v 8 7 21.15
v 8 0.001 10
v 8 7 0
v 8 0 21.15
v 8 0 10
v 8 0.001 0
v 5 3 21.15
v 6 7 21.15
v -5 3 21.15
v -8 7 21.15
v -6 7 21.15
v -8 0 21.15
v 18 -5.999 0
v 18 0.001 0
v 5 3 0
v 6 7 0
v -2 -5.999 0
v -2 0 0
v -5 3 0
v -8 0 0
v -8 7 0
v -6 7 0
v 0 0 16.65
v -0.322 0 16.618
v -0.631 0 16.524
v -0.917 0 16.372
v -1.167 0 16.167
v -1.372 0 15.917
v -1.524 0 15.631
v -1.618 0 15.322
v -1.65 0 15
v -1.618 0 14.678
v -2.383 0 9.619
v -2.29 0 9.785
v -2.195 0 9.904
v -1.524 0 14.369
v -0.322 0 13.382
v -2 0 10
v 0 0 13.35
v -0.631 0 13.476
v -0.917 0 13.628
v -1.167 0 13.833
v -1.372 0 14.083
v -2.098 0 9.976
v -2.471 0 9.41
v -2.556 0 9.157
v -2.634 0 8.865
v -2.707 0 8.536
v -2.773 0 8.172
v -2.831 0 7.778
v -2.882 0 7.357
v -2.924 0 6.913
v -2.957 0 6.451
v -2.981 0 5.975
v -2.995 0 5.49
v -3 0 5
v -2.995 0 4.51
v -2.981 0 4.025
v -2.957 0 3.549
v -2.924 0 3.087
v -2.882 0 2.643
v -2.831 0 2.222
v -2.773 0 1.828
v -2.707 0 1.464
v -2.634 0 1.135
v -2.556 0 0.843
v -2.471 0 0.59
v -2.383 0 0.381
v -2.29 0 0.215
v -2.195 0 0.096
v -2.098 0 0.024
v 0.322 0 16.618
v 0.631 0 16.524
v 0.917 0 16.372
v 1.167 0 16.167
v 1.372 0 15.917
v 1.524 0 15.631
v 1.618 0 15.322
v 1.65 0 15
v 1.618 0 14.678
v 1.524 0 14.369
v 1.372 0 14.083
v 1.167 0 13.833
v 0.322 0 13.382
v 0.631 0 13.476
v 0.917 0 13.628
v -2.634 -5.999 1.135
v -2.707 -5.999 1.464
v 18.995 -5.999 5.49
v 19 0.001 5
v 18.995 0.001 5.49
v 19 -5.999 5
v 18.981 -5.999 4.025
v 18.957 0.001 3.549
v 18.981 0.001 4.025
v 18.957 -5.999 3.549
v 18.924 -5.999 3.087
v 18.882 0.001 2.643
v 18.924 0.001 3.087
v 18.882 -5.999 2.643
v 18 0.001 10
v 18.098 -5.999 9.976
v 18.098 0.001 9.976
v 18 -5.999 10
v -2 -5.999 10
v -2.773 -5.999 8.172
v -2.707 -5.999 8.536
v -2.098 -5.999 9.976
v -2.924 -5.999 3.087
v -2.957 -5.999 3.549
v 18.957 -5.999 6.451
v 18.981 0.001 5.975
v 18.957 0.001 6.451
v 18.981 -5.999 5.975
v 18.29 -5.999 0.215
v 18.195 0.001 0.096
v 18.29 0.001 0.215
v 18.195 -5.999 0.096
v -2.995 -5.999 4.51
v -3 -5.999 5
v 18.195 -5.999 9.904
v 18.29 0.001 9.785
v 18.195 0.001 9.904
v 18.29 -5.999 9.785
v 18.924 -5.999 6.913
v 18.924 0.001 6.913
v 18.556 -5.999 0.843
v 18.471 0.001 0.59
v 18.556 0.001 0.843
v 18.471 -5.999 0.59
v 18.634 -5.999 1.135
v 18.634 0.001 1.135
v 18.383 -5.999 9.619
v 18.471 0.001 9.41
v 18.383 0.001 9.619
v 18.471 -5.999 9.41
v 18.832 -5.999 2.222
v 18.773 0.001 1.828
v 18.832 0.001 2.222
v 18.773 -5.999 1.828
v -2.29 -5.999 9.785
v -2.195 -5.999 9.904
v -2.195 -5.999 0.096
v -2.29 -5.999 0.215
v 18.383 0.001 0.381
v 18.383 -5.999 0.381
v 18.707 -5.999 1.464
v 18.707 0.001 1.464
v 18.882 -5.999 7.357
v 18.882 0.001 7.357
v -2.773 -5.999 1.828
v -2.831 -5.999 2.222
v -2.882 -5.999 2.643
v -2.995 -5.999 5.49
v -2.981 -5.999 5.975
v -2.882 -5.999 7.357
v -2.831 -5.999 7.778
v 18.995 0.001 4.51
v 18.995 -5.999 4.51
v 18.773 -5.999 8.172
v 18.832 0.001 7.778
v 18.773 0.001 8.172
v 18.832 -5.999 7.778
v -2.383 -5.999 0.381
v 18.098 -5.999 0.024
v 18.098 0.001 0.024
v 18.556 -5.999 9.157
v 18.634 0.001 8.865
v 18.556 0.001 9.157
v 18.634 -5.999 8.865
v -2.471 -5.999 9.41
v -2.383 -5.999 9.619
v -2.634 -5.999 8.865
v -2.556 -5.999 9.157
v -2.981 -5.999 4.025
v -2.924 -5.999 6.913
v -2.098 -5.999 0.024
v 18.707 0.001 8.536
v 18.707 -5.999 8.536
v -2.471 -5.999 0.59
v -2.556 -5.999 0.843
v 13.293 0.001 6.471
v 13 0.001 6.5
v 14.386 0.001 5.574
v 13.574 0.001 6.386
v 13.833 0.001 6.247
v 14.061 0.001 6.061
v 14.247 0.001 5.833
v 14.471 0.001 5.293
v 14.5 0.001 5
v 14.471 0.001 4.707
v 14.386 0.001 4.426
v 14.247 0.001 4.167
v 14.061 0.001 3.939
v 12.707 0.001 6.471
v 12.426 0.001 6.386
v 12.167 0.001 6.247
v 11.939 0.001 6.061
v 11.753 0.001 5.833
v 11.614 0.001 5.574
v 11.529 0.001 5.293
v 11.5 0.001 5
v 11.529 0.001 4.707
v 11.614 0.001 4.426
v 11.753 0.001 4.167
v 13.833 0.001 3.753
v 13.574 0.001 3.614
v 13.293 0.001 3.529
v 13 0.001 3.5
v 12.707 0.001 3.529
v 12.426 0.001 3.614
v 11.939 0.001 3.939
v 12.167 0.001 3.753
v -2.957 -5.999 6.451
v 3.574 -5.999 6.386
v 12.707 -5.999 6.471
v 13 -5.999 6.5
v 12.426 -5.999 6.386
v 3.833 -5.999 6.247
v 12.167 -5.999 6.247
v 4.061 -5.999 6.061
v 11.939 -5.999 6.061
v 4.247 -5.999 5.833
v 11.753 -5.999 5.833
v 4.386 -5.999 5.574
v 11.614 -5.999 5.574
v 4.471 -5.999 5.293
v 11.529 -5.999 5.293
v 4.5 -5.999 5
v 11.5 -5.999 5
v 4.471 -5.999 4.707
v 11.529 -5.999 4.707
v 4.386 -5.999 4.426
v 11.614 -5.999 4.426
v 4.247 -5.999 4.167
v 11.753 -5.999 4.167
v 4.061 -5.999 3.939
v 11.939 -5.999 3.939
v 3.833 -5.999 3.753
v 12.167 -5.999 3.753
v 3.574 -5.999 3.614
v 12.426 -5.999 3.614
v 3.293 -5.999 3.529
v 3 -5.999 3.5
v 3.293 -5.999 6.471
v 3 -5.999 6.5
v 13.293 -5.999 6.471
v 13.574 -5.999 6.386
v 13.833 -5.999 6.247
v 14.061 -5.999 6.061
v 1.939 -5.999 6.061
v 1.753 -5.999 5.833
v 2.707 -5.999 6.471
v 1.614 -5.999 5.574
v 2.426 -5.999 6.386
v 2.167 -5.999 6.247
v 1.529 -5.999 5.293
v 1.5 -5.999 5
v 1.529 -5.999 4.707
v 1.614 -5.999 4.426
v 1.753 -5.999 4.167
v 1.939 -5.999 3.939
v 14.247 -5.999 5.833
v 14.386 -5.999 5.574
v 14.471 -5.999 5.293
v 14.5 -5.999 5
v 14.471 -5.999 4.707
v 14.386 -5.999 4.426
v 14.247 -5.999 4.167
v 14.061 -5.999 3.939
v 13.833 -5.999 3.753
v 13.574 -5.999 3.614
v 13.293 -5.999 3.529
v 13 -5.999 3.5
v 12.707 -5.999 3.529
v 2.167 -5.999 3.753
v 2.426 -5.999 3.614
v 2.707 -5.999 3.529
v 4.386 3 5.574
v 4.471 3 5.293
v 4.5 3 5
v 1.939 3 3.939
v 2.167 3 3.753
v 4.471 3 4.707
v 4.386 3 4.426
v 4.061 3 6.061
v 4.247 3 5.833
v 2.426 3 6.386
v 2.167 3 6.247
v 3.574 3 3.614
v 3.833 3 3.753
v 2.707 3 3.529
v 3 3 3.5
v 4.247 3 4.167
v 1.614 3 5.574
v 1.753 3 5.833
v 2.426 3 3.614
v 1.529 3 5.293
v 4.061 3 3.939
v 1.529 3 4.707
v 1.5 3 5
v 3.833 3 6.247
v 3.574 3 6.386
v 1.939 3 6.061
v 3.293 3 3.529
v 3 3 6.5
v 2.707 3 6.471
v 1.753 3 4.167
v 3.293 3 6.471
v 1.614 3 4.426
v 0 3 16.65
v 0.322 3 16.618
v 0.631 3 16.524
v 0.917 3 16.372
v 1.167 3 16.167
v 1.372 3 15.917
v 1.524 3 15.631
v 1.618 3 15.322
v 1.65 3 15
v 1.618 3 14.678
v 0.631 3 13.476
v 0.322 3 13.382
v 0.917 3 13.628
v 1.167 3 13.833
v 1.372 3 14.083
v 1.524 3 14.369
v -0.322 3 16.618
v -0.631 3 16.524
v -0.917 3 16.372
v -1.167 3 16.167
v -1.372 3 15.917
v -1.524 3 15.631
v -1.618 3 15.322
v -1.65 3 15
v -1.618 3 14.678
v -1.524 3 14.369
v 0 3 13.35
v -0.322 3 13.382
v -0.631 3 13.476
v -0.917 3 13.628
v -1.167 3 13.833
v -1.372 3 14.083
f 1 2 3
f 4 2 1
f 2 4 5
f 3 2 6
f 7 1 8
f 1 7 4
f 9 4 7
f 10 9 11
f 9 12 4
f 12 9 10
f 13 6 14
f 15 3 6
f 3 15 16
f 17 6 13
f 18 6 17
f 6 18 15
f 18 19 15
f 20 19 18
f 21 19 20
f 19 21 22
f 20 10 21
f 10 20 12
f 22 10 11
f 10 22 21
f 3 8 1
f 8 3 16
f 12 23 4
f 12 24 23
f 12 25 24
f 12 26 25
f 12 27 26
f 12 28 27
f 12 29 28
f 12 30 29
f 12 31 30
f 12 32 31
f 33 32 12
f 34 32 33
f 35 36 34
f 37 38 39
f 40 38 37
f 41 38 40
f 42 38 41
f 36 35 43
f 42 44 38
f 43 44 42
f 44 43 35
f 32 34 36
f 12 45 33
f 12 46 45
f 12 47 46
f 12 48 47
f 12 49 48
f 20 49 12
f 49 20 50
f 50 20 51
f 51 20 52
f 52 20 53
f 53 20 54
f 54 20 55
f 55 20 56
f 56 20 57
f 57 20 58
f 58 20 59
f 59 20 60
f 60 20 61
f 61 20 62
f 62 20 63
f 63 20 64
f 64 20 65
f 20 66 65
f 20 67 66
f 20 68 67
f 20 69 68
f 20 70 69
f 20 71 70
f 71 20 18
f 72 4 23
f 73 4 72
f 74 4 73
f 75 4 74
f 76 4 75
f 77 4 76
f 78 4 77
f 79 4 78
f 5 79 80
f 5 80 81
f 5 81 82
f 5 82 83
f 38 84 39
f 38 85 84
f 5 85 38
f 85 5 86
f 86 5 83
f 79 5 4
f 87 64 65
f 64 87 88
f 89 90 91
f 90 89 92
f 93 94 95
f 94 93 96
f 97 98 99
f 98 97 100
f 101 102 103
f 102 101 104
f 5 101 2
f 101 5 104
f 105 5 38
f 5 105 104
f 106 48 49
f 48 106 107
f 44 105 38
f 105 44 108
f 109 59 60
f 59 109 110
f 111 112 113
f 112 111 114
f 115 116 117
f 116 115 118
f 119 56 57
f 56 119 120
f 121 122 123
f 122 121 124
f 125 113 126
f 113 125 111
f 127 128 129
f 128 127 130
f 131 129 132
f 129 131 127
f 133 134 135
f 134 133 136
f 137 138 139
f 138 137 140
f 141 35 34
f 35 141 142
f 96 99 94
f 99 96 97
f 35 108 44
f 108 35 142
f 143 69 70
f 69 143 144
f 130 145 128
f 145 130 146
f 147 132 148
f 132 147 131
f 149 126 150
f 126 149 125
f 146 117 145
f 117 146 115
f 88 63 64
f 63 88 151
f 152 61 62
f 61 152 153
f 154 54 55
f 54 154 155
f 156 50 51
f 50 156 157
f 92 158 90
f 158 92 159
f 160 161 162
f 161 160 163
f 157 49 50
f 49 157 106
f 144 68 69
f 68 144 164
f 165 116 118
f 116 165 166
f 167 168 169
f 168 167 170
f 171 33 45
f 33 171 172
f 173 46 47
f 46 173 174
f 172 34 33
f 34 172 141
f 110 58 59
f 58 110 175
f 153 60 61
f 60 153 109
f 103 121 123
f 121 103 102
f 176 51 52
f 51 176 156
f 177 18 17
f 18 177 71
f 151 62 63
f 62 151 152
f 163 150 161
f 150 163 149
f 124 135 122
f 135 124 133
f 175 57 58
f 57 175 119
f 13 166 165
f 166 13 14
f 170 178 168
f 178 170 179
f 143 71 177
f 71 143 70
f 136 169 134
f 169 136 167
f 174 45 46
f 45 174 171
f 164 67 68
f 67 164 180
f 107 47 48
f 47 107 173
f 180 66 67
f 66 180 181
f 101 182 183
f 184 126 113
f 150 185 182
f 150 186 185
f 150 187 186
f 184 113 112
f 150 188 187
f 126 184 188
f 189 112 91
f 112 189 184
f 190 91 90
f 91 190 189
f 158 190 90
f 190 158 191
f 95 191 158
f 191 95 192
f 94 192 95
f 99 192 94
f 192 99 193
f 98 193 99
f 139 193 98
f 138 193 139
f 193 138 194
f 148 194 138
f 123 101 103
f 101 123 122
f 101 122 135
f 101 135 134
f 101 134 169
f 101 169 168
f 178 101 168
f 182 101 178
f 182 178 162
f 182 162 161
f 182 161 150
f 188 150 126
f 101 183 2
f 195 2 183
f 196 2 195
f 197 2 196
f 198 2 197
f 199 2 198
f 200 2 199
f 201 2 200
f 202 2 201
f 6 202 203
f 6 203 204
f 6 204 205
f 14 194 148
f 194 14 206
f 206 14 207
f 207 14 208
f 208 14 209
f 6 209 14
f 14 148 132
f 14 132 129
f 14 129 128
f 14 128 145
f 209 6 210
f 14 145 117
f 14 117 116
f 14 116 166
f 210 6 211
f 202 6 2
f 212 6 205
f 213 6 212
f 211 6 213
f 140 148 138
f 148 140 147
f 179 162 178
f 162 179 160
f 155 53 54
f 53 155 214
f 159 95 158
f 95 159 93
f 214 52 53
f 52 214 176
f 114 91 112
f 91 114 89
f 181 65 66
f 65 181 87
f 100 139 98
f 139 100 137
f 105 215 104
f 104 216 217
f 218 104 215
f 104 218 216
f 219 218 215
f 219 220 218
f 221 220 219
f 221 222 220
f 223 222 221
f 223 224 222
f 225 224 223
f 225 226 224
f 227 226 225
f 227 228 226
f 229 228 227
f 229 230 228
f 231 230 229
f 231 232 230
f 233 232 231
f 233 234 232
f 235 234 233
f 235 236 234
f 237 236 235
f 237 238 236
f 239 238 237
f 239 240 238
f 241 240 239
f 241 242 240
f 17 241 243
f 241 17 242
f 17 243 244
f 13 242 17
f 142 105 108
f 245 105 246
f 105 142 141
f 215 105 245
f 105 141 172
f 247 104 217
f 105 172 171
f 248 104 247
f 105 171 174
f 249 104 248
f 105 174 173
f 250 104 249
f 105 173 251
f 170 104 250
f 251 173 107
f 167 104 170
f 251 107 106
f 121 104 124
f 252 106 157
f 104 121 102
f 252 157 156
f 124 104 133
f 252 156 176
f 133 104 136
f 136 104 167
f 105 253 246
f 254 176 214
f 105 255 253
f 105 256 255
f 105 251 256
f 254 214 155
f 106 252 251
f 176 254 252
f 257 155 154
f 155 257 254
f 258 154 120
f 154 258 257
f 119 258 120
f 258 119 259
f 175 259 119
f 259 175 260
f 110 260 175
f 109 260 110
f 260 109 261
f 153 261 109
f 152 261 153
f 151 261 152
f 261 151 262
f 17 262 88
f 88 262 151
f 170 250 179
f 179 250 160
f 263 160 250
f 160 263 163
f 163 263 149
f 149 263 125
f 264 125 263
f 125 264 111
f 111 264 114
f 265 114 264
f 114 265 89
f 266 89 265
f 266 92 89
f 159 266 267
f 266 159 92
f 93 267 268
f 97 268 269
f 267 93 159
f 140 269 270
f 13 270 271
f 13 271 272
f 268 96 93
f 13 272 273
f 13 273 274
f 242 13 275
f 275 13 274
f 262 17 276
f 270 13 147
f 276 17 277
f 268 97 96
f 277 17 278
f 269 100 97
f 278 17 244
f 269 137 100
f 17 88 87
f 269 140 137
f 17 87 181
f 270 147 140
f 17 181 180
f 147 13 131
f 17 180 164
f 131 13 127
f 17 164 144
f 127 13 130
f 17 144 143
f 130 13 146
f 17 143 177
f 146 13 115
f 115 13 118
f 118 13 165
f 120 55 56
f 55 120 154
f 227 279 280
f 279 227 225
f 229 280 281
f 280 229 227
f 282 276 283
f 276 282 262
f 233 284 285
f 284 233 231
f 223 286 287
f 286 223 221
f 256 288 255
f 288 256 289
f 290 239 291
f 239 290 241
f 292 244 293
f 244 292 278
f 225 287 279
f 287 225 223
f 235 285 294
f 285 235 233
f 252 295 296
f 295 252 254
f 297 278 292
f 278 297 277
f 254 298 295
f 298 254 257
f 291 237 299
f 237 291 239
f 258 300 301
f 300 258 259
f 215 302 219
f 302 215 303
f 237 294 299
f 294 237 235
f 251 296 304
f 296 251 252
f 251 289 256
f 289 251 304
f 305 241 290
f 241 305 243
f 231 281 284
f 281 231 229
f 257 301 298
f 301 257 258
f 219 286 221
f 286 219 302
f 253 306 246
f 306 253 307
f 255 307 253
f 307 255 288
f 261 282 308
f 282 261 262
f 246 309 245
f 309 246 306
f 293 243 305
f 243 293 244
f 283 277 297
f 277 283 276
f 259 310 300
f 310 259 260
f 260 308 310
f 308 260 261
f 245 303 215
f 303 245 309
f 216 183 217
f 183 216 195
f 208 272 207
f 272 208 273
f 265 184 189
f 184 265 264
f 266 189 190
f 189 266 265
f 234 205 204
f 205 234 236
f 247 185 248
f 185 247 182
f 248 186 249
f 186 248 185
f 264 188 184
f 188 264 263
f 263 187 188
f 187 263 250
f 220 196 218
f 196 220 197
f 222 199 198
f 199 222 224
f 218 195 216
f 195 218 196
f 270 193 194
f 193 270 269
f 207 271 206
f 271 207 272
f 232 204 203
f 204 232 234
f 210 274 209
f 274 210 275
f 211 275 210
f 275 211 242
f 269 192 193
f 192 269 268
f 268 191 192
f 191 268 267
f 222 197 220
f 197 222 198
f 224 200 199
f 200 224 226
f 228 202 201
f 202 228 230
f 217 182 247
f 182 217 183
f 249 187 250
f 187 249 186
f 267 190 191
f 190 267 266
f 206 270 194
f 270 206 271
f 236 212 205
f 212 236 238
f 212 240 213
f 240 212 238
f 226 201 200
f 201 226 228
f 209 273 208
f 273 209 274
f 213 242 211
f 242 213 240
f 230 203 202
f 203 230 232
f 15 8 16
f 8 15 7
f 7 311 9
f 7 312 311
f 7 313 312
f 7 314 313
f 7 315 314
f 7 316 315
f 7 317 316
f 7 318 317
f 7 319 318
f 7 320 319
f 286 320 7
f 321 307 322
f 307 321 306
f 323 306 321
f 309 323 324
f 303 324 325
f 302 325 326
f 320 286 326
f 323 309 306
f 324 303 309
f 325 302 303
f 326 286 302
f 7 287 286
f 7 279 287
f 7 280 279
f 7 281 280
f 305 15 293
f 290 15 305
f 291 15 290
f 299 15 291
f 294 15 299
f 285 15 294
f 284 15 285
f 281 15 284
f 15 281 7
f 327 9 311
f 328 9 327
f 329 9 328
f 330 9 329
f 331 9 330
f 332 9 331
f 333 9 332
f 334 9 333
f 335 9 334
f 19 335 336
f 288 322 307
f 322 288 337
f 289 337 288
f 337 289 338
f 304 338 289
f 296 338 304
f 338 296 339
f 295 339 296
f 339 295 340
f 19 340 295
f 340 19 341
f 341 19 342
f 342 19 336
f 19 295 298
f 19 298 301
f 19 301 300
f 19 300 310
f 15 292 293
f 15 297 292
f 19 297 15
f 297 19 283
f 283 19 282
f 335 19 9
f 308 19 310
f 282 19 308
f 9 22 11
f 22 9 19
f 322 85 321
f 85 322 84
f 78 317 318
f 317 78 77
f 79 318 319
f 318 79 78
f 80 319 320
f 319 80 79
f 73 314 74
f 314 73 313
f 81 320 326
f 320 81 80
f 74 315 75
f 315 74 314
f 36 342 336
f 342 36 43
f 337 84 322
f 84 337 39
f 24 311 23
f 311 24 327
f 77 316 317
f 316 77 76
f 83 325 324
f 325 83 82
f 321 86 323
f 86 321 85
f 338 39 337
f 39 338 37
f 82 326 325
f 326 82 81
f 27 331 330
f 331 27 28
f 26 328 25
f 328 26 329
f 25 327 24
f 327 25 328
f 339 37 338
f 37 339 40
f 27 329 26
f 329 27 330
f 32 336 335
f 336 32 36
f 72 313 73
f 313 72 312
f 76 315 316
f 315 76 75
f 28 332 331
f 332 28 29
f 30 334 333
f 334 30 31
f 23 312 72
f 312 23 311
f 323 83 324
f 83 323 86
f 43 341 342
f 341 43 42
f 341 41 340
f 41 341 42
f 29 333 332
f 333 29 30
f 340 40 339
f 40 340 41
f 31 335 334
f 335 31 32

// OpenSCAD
// file: endstop_rail.scad
module endstop_rail_screwslit(height = toolheight, railwidth = esrailwidth, raildepth = esraildepth, ratio = esrailratio, screwwidth=6, screwheight=3.5, screwdiam=3.3) {
    union(){
        translate([-0.5*screwwidth,-screwheight+0.001,5]) cube([screwwidth, screwheight, height*1.2]);
        translate([-0.5*screwdiam,-raildepth-1,5]) cube([screwdiam, raildepth+1, height*1.2]);
    }
}


module endstop_rail(height = toolheight, railwidth = esrailwidth, raildepth = esraildepth, ratio = esrailratio) {
    // rail body
    linear_extrude(height = height, center = false)
        polygon(
            points=[
                [-railwidth/2, -raildepth], [railwidth/2, -raildepth],
                [railwidth/2*ratio, 0], [-railwidth/2*ratio, 0]
            ],
            paths =[ [0,1,2,3] ]
        );
}
// file: variables.scad
// Height distance pin (depends on shape in external svg file, don't change)
pinheight = 6.3;

// diameter of linear actuator shaft 
shaftdiam = 21;
// height of linear actuator shaft 
shaftheight = 18;
// vertical position of shaft throughhole
shaftdistancethroughhole = 9;
// throughhole diameter
throughholediam = 6;

// diameter of magnet to hold distance pin
magnetdiam = 7.5;
// height of magnet to hold distance pin
magnetheight = 15;
// distance of magnet to pin (to reduce magentic force)
magnetdistance = 3;

// length of spring above magnet
springheight = 0; // no spring
magnetshaftstart = pinheight+magnetdistance;

// diameter of punch tool (upper part of shaft)
tooldiam=30;

// acumulated height of tool
toolheight=pinheight+magnetheight+magnetdistance+springheight+shaftheight;

// end stop rail width
esrailwidth=10;
// end stop rail depth
esraildepth=8;
// end stop rail ration between thick and thin end
esrailratio=1.4;
// end stop rail height
esrailheight=toolheight;

// distance between holes in end stop switch
endstopholedistance = 10;
// diameter of holes in end stop switch
endstopholediam = 3;
// vertical offset of end stop switch
endstopsensoroffset = 0;
// mounting plate thickness
mplatethick = 6;
// main file
include <variables.scad>
include <endstop_rail.scad>

// end stop holder
sensorrailthickness = 3;
sensorrailwidth = esrailwidth + 2*sensorrailthickness;
sensorraildepth = 7;

module endstopholder(spacing=endstopholedistance, offset=endstopsensoroffset, d=endstopholediam, platewidth=mplatethick) {
    difference() {
        union() {
            translate([-sensorrailwidth/2,0,0]) cube([sensorrailwidth, sensorraildepth, esrailheight*0.5]);
            // mounting plate
            translate([offset,-platewidth/2+0.001,0]) hull() {
                translate([-spacing,0,0]) translate([0,0,5]) rotate([90,0,0]) scale([0.2,1,1]) cylinder(d=10,h=platewidth,center=true,$fn=64);
                translate([ spacing,0,0]) translate([0,0,5]) rotate([90,0,0]) scale([0.2,1,1]) cylinder(d=10,h=platewidth,center=true,$fn=64);
            }
        }
        union() {
            // rail shape
            translate([0, esraildepth+sensorrailthickness,-0.1*esrailheight]) endstop_rail(height=esrailheight*2, ratio=esrailratio);
            // mounting plate holes
            translate([offset,0,0]) union() {
                translate([-spacing/2,0,0]) translate([0,0,5]) rotate([90,0,0]) cylinder(d=d, h=20, center=true, $fn=32);
                translate([ spacing/2,0,0]) translate([0,0,5]) rotate([90,0,0]) cylinder(d=d, h=20, center=true, $fn=32);
            }
            // fixation screw hole
            translate([0,0,15]) rotate([90,0,0]) cylinder(d=3.3, h=10, center=true, $fn=32);
        }
    }
}

//rotate([90,0,0])
endstopholder(offset=8);
